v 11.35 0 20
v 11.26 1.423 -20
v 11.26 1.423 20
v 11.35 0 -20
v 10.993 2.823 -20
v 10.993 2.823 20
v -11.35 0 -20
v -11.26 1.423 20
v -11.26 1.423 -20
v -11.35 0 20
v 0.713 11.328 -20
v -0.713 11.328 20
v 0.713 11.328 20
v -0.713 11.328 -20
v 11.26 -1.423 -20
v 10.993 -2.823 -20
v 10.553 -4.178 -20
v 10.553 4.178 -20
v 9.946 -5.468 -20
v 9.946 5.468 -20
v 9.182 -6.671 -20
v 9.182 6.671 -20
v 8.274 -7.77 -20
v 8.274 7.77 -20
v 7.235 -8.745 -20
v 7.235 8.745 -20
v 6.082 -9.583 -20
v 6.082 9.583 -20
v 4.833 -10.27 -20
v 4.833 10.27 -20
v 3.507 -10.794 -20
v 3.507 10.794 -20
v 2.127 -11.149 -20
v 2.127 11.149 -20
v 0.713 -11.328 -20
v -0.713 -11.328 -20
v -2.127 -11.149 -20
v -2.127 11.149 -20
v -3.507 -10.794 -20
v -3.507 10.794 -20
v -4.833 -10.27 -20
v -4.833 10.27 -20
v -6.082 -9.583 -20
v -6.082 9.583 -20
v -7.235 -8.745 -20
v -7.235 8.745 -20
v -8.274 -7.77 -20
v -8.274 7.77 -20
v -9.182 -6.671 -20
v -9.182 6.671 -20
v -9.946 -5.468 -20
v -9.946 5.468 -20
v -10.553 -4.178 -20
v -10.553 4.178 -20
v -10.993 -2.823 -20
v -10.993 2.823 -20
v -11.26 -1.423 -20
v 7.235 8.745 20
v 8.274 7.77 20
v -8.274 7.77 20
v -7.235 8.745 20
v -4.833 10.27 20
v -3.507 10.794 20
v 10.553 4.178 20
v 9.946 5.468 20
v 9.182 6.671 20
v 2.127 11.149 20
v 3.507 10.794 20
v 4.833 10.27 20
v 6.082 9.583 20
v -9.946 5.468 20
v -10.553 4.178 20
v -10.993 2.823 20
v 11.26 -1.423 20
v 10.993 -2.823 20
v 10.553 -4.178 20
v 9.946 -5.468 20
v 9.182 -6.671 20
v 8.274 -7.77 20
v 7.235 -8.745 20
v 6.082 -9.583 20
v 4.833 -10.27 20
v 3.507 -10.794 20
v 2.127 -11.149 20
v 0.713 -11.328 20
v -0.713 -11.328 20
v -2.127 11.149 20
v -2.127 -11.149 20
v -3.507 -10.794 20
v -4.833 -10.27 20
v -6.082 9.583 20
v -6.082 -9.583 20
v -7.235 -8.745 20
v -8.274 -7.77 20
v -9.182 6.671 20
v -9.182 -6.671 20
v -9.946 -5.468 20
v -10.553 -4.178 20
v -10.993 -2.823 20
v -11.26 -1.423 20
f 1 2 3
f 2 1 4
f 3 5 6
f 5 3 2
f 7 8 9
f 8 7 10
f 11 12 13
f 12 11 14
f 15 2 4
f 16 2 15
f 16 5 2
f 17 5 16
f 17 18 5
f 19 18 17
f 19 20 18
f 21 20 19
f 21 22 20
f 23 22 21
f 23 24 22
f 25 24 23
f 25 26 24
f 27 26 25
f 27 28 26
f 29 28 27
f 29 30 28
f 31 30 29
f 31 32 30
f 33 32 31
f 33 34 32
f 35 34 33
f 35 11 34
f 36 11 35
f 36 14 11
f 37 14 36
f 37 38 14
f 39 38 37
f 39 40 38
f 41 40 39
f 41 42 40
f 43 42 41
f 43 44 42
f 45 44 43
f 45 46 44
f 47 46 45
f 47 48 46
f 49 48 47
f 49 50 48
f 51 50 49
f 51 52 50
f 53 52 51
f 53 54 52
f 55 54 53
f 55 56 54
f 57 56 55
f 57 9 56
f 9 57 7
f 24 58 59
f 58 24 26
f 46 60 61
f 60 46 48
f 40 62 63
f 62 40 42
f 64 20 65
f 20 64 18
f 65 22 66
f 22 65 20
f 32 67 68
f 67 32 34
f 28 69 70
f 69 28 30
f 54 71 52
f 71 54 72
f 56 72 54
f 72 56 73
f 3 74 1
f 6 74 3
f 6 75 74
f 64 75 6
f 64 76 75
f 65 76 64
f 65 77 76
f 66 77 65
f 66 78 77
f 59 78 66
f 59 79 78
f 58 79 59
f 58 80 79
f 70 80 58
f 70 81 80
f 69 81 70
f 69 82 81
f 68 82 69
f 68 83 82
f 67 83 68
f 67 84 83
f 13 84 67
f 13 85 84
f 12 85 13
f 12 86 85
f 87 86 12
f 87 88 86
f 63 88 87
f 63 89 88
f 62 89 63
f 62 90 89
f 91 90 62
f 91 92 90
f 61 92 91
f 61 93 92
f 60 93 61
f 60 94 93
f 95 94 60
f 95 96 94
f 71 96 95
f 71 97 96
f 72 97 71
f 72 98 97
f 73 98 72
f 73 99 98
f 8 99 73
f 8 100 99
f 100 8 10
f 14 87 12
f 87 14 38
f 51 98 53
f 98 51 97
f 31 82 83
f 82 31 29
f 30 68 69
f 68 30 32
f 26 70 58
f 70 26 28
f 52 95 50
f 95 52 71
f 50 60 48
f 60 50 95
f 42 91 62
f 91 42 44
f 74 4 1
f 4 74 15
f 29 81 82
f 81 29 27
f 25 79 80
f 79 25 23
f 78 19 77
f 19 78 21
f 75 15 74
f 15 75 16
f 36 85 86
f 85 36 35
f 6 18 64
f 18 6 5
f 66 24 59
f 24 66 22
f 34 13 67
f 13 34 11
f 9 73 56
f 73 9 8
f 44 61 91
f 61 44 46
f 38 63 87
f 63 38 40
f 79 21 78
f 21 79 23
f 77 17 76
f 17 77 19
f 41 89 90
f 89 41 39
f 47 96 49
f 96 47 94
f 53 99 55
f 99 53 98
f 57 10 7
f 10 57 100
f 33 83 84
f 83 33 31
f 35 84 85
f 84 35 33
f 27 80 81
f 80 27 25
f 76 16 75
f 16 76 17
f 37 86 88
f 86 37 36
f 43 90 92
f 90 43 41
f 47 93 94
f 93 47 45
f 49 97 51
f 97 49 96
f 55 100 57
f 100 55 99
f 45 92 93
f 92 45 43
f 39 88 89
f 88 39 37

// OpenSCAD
$fn = 50;


difference() {
	union() {
		translate(v = [0, 0, -20.0000000000]) {
			cylinder(h = 40, r = 11.3500000000);
		}
	}
	union() {
		translate(v = [0, 0, -100.0000000000]) {
			cylinder(h = 200, r = 0);
		}
	}
}
